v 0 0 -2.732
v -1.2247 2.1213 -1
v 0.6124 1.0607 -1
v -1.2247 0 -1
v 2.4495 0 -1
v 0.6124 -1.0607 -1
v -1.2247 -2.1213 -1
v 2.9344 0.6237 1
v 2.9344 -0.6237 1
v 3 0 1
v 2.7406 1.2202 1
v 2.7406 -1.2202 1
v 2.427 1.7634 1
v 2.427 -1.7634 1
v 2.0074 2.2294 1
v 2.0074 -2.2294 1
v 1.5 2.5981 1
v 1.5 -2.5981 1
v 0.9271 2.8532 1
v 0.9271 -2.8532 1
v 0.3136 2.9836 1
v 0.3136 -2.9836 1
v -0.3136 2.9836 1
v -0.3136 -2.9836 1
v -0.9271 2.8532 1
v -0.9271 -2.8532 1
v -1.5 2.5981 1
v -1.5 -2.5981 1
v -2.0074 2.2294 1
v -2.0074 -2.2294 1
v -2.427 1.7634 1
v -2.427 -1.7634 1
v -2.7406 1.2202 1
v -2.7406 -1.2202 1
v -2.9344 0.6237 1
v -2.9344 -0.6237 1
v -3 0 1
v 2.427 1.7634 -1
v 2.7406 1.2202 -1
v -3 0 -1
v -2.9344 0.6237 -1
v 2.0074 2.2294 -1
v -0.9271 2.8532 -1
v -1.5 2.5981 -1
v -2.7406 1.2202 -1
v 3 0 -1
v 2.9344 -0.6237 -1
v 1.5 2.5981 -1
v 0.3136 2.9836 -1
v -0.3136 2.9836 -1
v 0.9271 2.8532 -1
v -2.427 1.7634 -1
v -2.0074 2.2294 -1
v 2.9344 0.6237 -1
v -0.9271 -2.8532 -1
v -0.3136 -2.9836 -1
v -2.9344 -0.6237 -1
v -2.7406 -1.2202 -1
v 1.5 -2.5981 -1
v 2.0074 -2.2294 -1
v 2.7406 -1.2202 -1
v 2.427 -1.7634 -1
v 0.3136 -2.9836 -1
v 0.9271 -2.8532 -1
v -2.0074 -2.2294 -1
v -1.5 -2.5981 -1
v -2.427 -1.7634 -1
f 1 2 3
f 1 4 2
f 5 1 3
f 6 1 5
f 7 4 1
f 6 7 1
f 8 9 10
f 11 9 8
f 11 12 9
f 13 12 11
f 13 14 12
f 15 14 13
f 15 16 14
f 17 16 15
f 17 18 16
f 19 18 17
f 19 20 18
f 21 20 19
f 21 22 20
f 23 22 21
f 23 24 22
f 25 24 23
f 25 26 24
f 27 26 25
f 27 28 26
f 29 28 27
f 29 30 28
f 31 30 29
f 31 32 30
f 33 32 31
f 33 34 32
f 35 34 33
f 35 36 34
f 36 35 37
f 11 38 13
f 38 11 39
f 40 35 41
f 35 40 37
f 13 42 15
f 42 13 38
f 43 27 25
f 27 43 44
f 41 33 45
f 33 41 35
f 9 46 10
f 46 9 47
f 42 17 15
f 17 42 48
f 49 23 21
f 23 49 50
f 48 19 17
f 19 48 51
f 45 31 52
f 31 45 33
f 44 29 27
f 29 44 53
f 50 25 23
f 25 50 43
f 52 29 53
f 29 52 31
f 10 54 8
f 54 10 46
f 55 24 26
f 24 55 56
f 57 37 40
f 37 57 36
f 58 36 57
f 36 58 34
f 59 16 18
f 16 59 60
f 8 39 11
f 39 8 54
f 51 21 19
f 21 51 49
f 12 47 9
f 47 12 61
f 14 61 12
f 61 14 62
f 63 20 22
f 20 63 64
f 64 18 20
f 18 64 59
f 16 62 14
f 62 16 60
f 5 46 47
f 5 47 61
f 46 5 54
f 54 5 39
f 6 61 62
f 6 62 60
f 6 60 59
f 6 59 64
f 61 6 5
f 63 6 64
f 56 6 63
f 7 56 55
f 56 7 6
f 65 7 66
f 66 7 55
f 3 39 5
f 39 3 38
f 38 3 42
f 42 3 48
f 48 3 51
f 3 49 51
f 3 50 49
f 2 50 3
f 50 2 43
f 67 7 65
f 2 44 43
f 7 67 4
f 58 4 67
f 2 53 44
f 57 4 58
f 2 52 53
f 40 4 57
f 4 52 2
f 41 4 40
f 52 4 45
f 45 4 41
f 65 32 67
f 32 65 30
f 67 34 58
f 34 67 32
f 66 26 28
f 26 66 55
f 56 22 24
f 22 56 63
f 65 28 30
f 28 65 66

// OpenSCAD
// Nagel

$fn=30;
dreh = $t*360;
w=90-acos(sqrt(2/3)); // Winkel der Raumdiagonale

cylinder(d=6,h=2,center=true);

difference() {

    translate([0,0,-1])
    rotate([0, w, 0]) {
     translate([-sqrt(2)/2, 0, 0.5])
     rotate([0, 0, 45]) cube([3,3,3], center=true);
    };
    translate([0,0,2])
    cylinder(d=6,h=2,center=true);

};
